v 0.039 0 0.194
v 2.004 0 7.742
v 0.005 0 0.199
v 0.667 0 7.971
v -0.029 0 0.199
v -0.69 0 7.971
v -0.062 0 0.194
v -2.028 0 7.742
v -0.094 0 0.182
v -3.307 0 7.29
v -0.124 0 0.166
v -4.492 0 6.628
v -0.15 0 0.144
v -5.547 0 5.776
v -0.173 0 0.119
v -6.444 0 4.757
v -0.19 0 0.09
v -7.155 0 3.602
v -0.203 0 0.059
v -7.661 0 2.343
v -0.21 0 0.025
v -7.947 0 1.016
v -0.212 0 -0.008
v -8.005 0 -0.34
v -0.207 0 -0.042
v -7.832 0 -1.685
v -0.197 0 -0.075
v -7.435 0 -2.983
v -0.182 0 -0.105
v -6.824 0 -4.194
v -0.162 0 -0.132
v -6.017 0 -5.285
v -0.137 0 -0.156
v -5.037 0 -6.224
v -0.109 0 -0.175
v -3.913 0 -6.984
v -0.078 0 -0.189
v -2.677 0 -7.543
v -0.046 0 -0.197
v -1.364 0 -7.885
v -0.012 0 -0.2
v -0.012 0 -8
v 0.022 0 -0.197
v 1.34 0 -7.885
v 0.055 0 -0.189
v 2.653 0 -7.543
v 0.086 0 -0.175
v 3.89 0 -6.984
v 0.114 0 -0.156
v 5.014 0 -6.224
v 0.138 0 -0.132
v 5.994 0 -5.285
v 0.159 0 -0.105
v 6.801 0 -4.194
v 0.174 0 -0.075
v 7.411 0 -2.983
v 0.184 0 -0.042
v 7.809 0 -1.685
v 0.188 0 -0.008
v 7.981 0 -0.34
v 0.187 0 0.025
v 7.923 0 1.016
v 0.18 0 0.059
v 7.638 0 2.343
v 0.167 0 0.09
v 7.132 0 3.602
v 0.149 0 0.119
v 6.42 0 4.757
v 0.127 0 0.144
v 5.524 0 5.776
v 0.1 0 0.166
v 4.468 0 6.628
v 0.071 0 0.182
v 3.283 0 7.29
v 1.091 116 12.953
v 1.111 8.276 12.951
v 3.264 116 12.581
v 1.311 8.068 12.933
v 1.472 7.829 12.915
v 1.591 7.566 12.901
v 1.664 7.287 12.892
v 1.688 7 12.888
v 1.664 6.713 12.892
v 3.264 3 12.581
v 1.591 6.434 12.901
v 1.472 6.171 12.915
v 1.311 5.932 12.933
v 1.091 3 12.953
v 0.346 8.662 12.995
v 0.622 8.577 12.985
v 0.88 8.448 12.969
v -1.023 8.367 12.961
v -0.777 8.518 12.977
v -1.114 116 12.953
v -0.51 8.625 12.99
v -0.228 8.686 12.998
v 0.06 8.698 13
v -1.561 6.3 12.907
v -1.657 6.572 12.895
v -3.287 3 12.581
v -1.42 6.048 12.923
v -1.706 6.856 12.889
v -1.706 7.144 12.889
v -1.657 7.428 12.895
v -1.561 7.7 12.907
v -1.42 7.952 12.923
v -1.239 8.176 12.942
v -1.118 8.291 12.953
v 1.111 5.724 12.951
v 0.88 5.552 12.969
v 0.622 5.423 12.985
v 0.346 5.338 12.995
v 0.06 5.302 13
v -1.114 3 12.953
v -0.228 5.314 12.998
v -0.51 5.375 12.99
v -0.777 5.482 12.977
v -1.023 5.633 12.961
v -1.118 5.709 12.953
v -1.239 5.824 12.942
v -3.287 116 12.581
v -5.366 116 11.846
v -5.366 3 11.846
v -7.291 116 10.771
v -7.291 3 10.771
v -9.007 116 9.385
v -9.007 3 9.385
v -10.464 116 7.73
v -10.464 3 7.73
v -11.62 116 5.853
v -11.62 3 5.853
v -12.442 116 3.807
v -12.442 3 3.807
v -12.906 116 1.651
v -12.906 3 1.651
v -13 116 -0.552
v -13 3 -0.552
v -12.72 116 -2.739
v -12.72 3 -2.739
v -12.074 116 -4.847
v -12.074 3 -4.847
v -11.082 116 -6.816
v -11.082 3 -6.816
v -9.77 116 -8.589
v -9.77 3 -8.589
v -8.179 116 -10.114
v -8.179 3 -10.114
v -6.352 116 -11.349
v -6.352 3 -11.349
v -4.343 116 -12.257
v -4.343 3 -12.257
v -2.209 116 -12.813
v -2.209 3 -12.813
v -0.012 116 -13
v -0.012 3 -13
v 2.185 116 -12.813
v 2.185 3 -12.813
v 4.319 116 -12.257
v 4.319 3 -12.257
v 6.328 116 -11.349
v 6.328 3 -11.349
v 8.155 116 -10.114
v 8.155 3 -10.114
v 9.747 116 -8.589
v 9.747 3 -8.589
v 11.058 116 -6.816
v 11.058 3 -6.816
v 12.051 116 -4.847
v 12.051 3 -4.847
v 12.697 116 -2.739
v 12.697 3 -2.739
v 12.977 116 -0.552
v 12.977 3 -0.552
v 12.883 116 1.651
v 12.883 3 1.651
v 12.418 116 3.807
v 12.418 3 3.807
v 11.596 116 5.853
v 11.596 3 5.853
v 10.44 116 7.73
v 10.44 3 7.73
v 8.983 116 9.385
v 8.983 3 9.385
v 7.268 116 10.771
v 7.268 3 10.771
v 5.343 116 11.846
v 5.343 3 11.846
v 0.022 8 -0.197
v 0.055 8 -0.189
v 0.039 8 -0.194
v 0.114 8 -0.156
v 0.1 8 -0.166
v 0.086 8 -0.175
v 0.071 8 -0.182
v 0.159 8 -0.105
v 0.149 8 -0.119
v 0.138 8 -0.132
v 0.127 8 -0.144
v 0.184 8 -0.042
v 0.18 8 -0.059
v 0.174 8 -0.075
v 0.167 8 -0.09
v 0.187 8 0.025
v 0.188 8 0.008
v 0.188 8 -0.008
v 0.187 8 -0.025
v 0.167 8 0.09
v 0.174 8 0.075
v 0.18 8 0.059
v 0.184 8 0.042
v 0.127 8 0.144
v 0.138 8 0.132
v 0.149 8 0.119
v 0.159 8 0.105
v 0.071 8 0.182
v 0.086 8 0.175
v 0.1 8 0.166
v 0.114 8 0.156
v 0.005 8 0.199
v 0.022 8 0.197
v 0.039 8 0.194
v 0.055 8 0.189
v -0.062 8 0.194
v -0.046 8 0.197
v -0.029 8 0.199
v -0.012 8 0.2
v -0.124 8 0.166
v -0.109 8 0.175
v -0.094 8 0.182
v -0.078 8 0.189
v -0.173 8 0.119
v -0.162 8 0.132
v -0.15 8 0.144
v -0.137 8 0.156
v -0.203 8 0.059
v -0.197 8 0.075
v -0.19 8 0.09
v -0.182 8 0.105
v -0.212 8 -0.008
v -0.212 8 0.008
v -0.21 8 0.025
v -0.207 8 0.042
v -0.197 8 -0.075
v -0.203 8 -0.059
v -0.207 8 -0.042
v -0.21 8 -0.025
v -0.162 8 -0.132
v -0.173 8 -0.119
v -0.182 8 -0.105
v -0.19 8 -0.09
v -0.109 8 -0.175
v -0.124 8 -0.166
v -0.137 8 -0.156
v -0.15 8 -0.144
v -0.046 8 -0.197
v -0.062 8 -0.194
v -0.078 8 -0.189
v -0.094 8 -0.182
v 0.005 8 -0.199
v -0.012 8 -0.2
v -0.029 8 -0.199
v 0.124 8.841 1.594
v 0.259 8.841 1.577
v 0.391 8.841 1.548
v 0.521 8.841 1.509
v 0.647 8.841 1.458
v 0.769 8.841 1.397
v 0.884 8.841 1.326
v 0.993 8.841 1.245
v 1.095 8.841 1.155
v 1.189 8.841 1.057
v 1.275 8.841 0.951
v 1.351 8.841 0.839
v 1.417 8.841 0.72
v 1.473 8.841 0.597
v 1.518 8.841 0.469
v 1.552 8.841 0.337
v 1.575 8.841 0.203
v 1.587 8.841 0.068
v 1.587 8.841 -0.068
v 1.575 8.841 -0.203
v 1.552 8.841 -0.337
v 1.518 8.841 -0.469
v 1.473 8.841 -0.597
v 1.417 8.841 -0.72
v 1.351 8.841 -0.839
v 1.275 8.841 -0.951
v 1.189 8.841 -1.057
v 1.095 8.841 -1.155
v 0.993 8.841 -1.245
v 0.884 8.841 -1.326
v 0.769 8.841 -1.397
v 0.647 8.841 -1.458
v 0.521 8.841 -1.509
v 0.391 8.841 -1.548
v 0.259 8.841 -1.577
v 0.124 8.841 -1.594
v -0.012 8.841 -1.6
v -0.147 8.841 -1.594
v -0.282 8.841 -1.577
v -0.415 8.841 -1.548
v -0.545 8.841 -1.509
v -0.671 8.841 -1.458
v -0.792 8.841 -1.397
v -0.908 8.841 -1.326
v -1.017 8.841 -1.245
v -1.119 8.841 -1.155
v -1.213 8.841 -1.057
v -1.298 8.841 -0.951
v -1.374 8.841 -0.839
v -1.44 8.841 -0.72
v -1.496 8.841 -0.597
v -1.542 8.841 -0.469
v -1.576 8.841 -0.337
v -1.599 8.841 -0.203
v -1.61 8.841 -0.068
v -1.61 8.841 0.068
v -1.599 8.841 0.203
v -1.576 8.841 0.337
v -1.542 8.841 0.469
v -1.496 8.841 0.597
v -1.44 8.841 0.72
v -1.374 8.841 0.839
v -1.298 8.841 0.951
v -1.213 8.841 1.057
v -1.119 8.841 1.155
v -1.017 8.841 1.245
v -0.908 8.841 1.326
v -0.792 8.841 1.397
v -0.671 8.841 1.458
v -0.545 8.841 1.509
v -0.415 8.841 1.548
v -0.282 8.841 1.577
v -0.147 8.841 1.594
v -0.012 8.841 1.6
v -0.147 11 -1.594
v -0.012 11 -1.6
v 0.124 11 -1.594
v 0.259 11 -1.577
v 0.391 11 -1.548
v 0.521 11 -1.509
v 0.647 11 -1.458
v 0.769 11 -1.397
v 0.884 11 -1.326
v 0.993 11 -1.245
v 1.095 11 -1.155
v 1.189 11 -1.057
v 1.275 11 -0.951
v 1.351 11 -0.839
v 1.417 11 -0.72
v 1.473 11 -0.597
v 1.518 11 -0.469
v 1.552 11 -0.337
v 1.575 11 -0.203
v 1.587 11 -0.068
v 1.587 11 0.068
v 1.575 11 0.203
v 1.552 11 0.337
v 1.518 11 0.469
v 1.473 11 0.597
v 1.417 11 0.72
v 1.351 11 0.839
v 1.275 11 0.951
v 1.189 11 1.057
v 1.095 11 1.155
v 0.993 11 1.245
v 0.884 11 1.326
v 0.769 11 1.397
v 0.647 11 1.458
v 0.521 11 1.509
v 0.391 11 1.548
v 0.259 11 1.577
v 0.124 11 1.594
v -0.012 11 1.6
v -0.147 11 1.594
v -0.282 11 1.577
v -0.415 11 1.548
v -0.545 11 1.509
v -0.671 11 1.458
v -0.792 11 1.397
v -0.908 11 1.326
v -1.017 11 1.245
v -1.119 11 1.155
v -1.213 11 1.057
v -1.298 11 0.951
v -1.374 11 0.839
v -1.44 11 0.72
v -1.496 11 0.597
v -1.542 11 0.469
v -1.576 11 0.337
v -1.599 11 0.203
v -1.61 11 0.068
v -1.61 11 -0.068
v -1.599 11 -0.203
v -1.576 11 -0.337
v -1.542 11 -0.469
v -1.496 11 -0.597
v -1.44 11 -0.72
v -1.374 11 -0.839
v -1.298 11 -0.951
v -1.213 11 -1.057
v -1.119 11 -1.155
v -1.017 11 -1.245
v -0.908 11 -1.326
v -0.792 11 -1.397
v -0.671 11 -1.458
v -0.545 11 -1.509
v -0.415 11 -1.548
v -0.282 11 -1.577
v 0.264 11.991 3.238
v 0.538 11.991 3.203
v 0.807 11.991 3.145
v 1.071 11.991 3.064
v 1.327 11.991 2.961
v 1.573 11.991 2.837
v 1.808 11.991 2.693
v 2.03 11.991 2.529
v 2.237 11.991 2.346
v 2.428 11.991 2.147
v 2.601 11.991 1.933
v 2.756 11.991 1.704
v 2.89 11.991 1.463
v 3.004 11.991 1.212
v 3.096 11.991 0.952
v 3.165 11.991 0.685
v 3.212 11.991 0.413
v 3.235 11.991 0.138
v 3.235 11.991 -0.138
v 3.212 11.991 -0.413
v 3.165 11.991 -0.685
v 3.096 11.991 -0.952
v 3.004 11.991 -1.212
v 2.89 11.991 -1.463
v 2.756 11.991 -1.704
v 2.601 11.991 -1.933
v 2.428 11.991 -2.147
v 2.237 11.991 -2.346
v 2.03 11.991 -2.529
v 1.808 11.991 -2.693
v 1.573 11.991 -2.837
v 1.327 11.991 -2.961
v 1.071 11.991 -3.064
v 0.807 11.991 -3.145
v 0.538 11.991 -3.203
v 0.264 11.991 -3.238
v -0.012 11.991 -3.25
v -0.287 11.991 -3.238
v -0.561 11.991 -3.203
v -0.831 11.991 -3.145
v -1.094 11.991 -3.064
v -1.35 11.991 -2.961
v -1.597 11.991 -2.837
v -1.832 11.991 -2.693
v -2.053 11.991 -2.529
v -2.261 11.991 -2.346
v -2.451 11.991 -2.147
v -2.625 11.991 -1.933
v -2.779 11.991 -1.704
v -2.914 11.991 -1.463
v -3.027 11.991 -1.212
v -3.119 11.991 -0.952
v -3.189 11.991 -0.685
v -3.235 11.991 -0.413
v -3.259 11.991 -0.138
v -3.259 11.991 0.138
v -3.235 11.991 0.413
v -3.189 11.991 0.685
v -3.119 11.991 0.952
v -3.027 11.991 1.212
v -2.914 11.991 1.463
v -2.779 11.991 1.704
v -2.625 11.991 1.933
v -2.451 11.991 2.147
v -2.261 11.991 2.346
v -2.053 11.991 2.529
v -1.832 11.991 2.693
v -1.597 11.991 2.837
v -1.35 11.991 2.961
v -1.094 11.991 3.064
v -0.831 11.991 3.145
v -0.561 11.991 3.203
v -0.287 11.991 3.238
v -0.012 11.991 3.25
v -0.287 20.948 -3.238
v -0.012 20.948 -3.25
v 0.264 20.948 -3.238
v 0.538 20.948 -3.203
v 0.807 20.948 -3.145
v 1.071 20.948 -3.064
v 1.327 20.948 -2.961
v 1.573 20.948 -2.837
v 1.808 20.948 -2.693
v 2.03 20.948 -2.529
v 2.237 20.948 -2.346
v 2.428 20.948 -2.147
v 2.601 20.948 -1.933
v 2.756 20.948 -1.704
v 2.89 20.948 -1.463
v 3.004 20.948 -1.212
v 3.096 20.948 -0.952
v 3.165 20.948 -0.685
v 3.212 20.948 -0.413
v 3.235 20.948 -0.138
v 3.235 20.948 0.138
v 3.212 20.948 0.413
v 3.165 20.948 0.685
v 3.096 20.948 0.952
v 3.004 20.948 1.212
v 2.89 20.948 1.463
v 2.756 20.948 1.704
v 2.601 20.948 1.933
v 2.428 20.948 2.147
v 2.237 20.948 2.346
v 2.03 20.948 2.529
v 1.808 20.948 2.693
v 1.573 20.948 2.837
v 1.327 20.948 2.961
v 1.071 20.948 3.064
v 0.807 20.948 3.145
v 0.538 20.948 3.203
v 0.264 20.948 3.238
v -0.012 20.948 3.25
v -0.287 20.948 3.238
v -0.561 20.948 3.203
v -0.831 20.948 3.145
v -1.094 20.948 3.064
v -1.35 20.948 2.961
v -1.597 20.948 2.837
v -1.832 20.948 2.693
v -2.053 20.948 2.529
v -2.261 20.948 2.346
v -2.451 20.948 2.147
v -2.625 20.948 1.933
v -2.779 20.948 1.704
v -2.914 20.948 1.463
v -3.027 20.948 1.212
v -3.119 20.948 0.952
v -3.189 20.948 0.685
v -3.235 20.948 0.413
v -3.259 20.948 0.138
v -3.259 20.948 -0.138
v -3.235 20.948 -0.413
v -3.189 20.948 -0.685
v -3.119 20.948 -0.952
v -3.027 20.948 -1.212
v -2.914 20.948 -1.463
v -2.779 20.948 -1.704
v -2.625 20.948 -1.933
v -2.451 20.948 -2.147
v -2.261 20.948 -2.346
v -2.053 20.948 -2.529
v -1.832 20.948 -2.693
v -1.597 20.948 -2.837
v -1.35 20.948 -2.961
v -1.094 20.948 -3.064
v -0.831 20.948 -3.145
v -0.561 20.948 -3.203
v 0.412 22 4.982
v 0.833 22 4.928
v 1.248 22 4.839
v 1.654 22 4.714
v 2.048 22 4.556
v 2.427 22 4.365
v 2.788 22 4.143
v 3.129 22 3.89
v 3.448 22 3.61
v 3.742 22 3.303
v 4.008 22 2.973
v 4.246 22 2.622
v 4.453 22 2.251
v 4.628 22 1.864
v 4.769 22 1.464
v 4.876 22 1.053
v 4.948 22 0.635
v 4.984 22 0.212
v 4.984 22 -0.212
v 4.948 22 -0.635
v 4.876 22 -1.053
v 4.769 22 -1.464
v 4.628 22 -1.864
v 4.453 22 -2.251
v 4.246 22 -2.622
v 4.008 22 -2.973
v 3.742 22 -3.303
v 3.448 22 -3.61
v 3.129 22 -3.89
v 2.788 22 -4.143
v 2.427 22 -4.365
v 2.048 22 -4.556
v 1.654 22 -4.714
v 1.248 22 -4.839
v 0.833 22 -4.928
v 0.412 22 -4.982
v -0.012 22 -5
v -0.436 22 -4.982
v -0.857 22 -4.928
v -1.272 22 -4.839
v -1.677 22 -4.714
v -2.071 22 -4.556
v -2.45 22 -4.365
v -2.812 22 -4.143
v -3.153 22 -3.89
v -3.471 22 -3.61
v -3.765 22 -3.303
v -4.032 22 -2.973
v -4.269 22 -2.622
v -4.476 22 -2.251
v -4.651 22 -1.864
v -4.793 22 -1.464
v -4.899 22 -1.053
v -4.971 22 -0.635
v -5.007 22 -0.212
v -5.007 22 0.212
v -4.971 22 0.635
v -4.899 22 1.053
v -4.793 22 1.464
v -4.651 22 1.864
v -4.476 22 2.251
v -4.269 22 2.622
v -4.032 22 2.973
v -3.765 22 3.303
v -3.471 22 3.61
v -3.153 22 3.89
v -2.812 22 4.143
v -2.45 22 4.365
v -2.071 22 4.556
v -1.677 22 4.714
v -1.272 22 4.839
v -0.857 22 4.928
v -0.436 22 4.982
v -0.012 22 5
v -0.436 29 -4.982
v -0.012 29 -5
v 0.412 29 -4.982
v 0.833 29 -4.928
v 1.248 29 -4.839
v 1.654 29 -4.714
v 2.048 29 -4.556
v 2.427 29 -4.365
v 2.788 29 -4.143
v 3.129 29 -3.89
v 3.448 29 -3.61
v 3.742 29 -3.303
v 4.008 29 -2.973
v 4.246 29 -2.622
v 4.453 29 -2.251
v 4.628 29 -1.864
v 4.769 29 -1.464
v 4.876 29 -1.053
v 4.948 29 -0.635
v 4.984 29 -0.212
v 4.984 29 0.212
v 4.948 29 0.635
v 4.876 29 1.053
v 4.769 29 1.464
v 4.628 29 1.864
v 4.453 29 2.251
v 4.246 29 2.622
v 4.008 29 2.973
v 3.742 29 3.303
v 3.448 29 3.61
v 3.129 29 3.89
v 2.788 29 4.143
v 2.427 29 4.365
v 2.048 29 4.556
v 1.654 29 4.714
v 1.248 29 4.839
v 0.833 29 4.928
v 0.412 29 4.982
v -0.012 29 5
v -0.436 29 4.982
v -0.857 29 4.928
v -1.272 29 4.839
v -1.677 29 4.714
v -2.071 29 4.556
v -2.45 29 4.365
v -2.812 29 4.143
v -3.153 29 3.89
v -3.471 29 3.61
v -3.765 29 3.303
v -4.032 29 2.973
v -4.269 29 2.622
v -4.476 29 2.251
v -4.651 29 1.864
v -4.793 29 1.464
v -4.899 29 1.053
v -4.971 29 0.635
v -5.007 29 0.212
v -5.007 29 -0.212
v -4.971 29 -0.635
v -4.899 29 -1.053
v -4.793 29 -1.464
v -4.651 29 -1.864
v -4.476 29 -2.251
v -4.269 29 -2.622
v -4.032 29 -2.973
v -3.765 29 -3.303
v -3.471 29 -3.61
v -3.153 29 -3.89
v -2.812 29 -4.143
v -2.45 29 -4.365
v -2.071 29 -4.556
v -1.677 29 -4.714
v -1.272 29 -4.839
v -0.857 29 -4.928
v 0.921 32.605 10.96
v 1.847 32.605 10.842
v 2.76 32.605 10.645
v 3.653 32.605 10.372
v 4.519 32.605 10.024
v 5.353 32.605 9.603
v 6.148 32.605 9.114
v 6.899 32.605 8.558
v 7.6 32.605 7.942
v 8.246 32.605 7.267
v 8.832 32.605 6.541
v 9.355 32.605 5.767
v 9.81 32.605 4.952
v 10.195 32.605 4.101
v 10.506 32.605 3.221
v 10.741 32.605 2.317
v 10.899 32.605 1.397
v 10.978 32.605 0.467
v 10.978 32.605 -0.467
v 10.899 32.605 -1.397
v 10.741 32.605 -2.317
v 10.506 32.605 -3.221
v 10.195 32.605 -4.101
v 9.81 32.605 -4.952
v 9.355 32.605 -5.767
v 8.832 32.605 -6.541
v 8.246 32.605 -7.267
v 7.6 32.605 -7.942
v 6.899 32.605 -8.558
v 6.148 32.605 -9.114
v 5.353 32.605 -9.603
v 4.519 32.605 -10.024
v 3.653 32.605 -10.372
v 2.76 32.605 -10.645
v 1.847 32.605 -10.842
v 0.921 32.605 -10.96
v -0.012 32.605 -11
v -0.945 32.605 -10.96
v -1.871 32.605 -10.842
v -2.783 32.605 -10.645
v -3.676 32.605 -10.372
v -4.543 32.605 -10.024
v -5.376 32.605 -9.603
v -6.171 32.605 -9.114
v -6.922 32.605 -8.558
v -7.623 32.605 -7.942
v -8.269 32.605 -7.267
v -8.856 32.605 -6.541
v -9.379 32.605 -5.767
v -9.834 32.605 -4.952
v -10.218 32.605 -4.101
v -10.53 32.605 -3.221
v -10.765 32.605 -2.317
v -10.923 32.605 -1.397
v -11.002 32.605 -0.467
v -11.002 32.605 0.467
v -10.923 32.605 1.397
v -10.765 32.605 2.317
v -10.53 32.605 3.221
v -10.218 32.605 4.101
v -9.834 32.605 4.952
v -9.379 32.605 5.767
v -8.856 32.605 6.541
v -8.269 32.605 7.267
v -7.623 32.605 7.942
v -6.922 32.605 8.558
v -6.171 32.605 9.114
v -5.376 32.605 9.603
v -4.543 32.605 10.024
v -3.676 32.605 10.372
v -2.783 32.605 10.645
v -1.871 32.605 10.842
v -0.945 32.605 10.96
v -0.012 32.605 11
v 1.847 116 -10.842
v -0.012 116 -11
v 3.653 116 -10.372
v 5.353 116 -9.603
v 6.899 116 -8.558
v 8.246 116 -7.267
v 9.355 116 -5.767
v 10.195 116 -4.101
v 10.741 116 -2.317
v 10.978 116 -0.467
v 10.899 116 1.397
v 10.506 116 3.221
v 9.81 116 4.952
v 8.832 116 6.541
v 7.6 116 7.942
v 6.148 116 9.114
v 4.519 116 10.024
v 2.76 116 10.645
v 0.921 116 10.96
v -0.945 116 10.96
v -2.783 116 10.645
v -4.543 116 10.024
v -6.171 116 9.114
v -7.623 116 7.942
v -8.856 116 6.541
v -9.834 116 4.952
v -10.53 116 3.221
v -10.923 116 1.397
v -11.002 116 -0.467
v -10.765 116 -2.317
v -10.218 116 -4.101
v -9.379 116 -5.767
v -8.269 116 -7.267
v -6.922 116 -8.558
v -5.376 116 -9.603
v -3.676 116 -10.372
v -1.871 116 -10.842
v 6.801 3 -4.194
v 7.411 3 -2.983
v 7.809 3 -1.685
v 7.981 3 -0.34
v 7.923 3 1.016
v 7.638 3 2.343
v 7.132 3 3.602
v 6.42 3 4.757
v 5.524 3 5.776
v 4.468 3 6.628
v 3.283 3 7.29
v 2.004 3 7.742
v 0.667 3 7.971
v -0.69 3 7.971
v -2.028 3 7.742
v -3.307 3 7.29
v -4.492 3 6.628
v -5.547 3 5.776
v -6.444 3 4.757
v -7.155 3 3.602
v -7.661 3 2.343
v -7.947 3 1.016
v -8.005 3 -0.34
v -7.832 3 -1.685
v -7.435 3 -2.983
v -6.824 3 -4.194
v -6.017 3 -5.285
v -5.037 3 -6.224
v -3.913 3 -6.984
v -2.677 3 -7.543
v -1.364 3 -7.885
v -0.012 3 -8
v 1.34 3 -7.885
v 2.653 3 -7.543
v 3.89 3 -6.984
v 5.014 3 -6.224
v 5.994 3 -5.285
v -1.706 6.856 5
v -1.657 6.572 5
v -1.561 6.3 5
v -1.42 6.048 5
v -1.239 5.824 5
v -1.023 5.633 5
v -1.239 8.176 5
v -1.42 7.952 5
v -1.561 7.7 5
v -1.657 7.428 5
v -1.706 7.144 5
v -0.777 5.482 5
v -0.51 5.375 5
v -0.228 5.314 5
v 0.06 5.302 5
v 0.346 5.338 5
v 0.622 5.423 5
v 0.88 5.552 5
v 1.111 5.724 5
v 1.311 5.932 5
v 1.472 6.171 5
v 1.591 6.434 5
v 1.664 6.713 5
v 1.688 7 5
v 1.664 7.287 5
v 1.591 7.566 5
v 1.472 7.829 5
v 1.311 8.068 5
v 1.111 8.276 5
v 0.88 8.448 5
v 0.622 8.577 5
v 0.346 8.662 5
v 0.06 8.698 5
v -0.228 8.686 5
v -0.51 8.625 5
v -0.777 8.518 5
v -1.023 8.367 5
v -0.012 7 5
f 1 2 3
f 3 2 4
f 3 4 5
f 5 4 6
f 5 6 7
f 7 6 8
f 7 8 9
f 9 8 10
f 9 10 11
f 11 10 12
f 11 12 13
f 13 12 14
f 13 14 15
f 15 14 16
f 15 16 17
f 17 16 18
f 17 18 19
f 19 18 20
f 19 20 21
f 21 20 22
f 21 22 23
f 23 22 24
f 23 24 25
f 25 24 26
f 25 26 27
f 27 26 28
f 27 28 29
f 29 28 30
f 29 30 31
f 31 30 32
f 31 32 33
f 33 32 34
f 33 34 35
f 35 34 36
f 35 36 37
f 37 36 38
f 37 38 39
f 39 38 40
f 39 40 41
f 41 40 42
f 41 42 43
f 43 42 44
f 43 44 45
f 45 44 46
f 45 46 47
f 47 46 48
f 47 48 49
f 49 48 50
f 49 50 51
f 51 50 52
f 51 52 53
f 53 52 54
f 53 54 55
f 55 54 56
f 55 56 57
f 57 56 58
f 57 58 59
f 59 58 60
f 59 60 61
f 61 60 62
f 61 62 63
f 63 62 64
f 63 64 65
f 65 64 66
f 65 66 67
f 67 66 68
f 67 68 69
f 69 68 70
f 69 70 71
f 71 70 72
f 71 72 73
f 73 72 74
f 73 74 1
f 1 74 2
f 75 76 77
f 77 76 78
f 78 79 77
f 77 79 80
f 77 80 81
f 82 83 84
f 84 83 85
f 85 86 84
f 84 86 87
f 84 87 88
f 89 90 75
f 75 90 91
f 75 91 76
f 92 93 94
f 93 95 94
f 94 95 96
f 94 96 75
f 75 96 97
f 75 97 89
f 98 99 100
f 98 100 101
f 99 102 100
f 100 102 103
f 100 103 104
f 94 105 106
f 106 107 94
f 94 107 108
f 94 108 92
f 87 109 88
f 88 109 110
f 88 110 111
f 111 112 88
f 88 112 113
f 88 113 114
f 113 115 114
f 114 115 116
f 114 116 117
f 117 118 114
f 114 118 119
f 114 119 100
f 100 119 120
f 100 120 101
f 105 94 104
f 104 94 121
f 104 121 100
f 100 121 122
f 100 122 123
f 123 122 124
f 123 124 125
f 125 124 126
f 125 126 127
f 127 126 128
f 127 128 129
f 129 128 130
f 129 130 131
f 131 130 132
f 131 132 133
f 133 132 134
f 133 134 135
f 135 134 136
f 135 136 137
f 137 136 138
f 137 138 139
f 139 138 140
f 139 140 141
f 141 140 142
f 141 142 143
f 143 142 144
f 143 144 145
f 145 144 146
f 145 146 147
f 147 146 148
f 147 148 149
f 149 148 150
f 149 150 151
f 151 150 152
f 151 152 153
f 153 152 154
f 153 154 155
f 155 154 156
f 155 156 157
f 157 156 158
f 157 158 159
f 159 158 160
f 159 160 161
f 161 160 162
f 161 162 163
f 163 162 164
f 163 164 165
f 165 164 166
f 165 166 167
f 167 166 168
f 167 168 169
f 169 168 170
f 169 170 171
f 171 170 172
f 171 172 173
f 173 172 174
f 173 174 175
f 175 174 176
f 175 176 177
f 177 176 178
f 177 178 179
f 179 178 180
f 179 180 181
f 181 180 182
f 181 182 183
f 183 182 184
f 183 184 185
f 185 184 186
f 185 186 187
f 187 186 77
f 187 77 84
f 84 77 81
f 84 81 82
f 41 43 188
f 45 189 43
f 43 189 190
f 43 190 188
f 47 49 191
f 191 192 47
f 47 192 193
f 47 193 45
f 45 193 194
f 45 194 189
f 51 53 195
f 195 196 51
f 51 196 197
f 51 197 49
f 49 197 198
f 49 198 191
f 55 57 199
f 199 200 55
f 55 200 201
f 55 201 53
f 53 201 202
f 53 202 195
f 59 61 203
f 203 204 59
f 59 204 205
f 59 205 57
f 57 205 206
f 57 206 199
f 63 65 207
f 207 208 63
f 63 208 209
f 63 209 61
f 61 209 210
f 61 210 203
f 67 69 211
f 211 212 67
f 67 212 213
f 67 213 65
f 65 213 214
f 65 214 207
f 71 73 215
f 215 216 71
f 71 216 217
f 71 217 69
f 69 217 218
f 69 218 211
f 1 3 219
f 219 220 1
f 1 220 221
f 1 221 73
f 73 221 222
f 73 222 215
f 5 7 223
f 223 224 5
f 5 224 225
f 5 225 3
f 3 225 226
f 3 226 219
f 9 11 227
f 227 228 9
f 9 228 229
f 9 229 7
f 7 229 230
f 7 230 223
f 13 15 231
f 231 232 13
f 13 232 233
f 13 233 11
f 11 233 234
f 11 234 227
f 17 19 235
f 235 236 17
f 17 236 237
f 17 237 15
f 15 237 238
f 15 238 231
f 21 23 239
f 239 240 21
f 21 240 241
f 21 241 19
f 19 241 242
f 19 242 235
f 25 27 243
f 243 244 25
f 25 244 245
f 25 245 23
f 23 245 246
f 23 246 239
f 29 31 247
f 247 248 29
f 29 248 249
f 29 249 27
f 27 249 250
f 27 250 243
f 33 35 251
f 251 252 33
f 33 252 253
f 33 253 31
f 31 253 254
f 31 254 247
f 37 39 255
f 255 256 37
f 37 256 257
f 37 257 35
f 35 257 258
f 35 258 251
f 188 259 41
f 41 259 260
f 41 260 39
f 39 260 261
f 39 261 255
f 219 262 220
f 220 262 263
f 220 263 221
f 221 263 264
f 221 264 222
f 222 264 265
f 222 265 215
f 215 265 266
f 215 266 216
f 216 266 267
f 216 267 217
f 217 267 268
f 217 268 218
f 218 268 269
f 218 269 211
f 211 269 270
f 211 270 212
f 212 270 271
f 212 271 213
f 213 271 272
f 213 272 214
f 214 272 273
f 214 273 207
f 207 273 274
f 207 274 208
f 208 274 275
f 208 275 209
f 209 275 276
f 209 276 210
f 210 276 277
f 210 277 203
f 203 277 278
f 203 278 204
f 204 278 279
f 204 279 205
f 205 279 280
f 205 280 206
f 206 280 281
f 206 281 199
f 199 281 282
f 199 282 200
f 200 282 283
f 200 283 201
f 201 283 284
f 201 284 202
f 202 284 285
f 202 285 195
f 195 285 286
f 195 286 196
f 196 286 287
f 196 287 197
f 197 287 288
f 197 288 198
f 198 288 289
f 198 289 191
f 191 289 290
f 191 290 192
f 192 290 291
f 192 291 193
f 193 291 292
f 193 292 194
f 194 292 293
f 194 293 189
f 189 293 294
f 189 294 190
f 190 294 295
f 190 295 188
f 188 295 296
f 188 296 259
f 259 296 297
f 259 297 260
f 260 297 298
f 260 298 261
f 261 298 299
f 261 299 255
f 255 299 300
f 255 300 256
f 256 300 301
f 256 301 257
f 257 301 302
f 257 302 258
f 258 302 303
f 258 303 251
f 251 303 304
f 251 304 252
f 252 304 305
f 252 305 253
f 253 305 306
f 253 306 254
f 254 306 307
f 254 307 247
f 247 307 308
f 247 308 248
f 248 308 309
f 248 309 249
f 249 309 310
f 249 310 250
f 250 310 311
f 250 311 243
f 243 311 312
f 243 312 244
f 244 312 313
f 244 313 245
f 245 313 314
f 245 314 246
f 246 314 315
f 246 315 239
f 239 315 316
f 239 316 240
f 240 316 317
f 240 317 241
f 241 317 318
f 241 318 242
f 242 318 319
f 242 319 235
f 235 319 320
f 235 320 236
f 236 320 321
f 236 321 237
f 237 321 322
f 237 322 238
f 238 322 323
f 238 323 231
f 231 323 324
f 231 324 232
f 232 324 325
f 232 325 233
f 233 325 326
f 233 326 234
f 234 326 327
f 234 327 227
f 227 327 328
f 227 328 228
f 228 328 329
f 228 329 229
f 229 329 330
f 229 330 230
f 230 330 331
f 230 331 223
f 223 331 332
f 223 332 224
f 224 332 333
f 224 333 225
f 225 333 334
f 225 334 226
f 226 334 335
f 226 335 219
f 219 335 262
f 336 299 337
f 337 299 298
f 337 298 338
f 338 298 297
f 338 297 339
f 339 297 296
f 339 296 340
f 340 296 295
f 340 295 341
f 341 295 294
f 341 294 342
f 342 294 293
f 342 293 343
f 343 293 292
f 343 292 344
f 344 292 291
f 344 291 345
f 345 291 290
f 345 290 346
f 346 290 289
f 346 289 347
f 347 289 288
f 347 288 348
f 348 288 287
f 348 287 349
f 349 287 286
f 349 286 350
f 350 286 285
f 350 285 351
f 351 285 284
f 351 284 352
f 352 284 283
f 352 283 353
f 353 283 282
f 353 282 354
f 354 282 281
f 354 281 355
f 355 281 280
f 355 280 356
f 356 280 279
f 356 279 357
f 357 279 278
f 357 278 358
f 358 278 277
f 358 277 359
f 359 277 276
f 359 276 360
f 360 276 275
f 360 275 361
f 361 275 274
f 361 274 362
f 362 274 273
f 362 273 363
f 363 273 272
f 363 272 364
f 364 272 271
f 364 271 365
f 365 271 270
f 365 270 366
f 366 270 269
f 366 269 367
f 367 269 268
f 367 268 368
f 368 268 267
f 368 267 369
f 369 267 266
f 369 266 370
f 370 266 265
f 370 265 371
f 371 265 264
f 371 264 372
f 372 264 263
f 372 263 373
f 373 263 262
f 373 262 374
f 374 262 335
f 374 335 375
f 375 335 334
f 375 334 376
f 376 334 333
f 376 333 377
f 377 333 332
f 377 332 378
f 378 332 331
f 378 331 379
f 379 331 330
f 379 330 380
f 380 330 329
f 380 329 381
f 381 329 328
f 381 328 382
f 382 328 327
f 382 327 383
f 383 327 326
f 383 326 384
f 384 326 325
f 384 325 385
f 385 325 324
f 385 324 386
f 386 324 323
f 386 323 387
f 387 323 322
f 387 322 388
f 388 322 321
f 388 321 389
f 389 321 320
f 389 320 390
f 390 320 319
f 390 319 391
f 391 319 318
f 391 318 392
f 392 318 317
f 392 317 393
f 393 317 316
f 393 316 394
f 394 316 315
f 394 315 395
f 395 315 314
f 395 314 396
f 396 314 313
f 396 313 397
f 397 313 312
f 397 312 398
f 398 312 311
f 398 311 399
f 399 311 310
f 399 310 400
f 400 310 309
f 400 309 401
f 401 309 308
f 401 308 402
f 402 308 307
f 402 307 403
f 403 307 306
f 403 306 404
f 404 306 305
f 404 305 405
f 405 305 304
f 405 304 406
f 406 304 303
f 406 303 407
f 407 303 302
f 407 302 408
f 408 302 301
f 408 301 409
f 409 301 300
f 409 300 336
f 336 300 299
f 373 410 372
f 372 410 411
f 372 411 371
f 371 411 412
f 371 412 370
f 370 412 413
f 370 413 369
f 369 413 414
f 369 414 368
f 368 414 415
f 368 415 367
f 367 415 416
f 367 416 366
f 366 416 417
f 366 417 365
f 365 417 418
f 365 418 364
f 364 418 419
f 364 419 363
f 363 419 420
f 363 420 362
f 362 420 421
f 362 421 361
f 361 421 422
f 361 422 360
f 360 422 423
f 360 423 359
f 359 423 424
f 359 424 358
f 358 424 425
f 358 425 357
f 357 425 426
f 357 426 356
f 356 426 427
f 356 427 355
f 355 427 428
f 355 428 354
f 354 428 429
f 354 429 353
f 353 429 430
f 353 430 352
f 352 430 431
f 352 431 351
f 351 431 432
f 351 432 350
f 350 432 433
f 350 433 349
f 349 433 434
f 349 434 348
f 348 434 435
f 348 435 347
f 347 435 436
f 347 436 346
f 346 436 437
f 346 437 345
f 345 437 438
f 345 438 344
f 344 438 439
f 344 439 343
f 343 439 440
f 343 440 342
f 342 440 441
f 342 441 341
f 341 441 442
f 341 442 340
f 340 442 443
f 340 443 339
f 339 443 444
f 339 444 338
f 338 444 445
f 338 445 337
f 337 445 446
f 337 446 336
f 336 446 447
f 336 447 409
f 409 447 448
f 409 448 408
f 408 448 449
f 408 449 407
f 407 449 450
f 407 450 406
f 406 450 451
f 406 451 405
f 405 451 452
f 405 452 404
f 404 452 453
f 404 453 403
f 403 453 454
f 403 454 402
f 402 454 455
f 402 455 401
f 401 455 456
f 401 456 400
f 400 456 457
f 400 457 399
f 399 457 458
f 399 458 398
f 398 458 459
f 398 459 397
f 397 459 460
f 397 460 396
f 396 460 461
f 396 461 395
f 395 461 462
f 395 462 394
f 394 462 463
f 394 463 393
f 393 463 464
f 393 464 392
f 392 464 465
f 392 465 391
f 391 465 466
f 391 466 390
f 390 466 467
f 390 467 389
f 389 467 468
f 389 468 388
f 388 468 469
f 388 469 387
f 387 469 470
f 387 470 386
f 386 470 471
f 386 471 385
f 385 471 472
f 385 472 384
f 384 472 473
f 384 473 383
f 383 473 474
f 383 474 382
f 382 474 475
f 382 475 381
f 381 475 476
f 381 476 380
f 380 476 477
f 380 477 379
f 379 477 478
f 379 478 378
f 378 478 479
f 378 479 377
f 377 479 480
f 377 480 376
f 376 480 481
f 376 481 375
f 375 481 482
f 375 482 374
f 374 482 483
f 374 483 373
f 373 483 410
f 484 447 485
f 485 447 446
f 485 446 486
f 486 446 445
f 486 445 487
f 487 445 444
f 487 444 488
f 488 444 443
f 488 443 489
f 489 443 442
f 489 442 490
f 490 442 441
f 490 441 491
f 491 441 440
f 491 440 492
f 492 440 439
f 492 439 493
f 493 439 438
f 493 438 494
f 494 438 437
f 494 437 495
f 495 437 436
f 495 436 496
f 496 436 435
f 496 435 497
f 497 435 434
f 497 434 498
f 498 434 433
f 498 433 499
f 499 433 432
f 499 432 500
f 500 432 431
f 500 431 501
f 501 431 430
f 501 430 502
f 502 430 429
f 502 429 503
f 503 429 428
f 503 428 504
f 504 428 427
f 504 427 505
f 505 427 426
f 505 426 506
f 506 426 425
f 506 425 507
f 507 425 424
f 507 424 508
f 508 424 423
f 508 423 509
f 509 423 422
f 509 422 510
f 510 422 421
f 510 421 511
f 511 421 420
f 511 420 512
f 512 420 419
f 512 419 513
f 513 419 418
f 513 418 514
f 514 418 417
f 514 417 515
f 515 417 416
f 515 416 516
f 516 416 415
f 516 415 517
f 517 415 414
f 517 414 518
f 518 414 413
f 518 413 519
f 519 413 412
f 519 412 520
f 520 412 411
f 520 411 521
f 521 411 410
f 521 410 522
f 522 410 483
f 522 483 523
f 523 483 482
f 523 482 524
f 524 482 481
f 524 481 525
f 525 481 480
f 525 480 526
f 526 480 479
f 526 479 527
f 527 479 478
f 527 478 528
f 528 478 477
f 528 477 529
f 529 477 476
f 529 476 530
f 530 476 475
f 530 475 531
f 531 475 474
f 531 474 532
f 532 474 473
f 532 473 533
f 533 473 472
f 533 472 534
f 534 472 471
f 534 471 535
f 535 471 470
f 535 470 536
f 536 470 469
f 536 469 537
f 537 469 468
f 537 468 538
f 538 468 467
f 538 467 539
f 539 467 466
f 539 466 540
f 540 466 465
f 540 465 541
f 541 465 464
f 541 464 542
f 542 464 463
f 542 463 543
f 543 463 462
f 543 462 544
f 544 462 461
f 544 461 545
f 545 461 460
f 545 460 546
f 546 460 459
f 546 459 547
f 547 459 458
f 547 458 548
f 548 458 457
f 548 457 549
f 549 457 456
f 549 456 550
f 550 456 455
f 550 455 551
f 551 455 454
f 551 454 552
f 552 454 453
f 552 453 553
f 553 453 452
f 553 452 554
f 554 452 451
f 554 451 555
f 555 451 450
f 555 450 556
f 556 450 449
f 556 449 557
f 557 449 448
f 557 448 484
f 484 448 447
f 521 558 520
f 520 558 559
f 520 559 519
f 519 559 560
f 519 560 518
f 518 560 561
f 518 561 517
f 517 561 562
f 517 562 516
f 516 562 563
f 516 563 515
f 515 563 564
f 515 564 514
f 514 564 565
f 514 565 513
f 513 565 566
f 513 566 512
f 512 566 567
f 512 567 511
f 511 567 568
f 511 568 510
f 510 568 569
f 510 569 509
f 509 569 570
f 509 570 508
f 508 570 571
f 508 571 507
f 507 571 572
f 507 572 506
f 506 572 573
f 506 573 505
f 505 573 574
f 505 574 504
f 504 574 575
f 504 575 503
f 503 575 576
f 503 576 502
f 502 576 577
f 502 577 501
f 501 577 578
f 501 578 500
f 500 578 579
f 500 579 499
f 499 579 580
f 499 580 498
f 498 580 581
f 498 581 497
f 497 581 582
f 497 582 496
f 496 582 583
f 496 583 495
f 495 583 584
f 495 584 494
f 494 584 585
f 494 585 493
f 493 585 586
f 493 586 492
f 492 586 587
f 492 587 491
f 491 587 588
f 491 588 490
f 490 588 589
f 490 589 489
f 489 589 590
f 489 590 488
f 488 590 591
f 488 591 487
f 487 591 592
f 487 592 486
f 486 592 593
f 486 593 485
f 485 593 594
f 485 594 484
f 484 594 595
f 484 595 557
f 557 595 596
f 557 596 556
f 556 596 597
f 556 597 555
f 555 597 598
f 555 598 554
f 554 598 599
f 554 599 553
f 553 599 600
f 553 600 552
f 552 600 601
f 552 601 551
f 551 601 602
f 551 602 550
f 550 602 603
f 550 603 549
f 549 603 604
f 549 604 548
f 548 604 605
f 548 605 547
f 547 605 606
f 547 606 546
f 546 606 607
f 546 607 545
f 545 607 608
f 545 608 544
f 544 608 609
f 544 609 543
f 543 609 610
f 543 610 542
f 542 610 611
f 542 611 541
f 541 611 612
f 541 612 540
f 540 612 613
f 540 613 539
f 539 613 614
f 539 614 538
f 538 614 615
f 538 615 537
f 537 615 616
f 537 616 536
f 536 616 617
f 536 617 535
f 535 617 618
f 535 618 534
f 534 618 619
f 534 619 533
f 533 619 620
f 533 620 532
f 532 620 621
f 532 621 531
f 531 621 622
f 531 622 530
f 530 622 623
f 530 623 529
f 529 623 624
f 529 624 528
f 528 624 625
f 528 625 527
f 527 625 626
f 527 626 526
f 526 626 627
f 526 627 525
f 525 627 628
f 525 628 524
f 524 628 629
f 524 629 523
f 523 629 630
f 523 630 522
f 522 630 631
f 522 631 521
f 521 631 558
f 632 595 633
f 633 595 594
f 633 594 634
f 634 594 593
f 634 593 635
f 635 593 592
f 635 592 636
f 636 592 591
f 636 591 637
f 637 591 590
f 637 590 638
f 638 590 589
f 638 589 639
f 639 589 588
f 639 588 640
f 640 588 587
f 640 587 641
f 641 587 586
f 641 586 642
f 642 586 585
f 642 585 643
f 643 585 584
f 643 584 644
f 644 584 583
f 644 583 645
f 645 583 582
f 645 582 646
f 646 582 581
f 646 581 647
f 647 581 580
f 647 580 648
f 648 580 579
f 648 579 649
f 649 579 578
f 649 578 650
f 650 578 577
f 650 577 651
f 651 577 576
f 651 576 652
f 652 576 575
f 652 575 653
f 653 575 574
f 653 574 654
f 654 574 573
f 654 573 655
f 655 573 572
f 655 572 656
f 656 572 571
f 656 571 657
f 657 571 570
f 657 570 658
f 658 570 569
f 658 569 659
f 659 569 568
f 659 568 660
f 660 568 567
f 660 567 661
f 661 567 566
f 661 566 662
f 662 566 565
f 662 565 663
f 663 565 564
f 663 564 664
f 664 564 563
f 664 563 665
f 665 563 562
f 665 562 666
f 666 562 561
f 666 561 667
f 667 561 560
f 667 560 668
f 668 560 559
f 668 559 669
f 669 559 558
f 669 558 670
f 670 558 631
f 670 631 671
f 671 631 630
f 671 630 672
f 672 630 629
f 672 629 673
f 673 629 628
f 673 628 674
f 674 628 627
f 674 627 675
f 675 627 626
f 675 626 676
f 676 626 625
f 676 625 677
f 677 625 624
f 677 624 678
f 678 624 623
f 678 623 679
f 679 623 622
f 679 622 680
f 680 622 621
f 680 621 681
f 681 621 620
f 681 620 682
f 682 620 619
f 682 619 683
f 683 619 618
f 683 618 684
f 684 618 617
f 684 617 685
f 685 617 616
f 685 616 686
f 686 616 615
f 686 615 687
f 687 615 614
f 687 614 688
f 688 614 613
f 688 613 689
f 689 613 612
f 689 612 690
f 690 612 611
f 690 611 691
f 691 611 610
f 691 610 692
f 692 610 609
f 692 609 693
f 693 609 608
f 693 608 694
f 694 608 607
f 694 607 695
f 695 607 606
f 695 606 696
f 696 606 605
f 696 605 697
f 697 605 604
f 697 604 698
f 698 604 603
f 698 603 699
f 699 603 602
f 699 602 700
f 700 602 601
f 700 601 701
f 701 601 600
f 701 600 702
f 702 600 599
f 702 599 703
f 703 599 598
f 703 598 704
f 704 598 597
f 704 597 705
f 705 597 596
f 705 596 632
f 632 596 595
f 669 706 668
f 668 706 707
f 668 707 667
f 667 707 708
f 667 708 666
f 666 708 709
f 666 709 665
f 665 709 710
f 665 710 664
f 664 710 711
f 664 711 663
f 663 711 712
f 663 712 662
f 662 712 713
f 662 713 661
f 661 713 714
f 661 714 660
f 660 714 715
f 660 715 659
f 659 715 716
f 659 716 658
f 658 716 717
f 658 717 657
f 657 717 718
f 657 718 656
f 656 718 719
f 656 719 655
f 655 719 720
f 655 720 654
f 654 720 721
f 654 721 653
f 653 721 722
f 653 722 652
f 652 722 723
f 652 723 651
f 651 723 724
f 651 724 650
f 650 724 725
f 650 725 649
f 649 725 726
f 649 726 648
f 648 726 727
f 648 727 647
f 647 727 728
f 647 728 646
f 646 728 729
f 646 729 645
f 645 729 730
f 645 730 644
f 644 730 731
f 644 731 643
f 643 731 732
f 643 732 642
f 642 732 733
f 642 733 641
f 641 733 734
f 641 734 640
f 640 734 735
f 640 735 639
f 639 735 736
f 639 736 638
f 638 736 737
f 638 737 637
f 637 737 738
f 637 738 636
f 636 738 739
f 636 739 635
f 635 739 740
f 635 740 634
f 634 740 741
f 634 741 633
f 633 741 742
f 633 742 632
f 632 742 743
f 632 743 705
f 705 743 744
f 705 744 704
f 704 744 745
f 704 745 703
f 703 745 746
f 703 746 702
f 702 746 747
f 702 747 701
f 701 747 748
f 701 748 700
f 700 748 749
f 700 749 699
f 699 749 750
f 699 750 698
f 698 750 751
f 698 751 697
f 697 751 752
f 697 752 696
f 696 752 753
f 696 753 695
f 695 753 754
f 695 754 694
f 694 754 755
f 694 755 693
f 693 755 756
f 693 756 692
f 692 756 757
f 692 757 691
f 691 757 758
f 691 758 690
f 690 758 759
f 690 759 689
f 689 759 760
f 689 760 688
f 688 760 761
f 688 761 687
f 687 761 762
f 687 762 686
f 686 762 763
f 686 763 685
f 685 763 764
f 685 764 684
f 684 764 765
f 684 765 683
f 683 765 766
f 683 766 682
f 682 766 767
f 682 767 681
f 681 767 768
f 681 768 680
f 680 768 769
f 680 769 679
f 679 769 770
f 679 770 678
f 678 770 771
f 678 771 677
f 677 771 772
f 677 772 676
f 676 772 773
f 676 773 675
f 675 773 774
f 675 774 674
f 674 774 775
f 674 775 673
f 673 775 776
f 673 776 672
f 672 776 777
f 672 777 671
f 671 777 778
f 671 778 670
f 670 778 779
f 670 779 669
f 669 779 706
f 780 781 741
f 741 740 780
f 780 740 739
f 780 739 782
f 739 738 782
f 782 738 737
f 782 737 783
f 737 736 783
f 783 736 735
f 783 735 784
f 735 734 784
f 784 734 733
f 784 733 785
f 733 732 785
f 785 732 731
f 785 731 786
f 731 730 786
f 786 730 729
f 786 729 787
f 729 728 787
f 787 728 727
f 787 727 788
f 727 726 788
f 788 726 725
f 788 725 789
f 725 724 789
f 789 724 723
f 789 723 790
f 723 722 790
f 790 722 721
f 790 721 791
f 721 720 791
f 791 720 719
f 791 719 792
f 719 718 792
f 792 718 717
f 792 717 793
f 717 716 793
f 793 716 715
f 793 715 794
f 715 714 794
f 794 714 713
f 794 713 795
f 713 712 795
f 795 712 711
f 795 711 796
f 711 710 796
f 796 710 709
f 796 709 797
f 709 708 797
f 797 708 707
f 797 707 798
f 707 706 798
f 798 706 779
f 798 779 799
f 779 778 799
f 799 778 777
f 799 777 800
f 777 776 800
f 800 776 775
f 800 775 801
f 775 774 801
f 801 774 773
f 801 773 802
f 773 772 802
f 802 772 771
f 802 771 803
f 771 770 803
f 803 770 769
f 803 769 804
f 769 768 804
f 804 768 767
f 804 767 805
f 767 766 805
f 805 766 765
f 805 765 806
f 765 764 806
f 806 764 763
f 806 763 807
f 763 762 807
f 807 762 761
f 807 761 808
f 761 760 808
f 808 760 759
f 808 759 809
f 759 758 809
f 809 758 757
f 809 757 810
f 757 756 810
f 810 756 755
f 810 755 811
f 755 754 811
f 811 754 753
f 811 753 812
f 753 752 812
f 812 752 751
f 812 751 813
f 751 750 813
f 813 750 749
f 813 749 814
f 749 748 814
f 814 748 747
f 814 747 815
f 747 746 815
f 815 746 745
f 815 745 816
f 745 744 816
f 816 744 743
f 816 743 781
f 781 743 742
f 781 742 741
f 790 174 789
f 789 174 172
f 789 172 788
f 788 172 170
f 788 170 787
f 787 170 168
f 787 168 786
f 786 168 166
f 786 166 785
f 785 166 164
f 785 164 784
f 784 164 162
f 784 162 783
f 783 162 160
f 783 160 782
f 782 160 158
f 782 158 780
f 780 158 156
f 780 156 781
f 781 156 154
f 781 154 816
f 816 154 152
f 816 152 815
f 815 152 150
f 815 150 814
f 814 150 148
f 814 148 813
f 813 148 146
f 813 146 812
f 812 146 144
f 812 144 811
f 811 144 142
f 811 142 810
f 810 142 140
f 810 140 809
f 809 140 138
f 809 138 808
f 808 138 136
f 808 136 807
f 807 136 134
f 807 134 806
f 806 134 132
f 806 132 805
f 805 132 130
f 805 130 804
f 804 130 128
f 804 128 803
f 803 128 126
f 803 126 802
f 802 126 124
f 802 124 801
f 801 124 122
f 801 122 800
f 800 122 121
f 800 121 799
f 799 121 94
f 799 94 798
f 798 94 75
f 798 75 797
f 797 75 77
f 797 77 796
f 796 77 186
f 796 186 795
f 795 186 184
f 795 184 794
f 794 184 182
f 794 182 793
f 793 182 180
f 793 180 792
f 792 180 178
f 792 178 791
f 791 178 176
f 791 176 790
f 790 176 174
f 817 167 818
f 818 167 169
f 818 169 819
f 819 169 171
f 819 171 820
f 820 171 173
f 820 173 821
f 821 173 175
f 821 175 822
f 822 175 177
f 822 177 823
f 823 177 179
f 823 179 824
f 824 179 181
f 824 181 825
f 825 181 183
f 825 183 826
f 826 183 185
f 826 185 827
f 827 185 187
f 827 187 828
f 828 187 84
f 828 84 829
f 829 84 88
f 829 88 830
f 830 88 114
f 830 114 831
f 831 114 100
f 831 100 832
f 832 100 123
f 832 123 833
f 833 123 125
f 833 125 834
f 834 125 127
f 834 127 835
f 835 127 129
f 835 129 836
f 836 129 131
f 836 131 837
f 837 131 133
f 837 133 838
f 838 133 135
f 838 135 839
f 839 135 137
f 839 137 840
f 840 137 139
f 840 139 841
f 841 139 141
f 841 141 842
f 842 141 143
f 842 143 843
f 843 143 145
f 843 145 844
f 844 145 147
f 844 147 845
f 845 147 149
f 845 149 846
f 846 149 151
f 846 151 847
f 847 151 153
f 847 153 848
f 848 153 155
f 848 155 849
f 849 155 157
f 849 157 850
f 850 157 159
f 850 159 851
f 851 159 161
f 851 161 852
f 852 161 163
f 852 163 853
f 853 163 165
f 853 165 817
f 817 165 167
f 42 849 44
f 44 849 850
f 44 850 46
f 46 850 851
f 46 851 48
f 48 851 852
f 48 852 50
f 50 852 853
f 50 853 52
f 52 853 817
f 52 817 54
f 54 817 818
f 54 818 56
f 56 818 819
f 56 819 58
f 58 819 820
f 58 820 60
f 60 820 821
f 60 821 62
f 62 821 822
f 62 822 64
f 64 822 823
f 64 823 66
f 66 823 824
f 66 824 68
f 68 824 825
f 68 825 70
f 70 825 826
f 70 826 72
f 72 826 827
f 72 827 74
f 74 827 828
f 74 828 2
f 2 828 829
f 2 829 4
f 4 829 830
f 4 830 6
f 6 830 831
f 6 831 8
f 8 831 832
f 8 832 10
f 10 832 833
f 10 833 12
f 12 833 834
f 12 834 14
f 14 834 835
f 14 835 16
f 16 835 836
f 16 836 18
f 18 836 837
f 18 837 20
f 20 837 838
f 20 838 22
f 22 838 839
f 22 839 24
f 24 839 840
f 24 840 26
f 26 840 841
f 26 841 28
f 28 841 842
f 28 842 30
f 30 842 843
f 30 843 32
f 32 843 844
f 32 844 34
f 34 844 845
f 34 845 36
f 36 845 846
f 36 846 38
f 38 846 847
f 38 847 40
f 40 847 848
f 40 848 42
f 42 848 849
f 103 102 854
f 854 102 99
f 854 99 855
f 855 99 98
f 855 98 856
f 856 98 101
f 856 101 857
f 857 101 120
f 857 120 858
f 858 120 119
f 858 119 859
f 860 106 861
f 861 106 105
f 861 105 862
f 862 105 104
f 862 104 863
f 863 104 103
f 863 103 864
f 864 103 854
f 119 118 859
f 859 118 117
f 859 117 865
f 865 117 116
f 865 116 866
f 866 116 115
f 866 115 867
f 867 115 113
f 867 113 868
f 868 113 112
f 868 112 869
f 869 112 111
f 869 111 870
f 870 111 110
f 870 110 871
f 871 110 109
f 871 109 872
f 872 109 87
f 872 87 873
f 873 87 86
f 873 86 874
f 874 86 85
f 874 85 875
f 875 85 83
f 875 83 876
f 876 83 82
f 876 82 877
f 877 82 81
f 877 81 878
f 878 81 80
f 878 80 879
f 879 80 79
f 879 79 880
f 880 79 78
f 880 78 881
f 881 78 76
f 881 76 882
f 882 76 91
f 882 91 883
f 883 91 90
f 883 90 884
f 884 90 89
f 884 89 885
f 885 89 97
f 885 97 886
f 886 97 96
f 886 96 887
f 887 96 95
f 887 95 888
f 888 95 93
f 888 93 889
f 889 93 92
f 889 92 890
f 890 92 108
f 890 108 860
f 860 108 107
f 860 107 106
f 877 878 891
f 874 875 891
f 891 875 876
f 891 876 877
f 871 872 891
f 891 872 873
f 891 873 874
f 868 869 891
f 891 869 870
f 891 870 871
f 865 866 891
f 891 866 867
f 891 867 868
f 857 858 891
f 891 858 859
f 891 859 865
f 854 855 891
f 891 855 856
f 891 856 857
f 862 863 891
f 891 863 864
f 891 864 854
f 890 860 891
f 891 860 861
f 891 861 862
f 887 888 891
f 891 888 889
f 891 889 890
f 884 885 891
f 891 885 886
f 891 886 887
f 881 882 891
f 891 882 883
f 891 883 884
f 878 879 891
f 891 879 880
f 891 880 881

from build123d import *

# Parameters (mm, degrees)
SKETCH7_R          = 13
SKETCH7_R_2        = 8
CUT_EXTRUDE3_DEPTH = 3
SKETCH6_R          = 1.7
CUT_EXTRUDE2_DEPTH = 8


with BuildPart() as part:
    # Sketch1 → Revolve1 (revolve)
    with BuildSketch(Plane.XY):
        Polygon((-0.2, 0), (-0.2, 8), (-1.6, 8.841204867), (-1.6, 11), (-3.25, 11.991420021), (-3.25, 20.948493917), (-5, 22), (-5, 29), (-11, 32.605163714), (-11, 116), (-13, 116), (-13, 0), align=None)
    revolve(axis=Axis((0, 0, 0), (0, 1, 0)))

    # Sketch7 → Cut-Extrude3 (cut)
    with BuildSketch(Plane.XZ):
        Circle(SKETCH7_R)
        Circle(SKETCH7_R_2, mode=Mode.SUBTRACT)
    extrude(amount=-CUT_EXTRUDE3_DEPTH, mode=Mode.SUBTRACT)

    # Sketch6 → Cut-Extrude2 (cut)
    with BuildSketch(Plane.XY.offset(13)):
        with Locations((0, 7)):
            Circle(SKETCH6_R)
    extrude(amount=-CUT_EXTRUDE2_DEPTH, mode=Mode.SUBTRACT)


solid = part.part
